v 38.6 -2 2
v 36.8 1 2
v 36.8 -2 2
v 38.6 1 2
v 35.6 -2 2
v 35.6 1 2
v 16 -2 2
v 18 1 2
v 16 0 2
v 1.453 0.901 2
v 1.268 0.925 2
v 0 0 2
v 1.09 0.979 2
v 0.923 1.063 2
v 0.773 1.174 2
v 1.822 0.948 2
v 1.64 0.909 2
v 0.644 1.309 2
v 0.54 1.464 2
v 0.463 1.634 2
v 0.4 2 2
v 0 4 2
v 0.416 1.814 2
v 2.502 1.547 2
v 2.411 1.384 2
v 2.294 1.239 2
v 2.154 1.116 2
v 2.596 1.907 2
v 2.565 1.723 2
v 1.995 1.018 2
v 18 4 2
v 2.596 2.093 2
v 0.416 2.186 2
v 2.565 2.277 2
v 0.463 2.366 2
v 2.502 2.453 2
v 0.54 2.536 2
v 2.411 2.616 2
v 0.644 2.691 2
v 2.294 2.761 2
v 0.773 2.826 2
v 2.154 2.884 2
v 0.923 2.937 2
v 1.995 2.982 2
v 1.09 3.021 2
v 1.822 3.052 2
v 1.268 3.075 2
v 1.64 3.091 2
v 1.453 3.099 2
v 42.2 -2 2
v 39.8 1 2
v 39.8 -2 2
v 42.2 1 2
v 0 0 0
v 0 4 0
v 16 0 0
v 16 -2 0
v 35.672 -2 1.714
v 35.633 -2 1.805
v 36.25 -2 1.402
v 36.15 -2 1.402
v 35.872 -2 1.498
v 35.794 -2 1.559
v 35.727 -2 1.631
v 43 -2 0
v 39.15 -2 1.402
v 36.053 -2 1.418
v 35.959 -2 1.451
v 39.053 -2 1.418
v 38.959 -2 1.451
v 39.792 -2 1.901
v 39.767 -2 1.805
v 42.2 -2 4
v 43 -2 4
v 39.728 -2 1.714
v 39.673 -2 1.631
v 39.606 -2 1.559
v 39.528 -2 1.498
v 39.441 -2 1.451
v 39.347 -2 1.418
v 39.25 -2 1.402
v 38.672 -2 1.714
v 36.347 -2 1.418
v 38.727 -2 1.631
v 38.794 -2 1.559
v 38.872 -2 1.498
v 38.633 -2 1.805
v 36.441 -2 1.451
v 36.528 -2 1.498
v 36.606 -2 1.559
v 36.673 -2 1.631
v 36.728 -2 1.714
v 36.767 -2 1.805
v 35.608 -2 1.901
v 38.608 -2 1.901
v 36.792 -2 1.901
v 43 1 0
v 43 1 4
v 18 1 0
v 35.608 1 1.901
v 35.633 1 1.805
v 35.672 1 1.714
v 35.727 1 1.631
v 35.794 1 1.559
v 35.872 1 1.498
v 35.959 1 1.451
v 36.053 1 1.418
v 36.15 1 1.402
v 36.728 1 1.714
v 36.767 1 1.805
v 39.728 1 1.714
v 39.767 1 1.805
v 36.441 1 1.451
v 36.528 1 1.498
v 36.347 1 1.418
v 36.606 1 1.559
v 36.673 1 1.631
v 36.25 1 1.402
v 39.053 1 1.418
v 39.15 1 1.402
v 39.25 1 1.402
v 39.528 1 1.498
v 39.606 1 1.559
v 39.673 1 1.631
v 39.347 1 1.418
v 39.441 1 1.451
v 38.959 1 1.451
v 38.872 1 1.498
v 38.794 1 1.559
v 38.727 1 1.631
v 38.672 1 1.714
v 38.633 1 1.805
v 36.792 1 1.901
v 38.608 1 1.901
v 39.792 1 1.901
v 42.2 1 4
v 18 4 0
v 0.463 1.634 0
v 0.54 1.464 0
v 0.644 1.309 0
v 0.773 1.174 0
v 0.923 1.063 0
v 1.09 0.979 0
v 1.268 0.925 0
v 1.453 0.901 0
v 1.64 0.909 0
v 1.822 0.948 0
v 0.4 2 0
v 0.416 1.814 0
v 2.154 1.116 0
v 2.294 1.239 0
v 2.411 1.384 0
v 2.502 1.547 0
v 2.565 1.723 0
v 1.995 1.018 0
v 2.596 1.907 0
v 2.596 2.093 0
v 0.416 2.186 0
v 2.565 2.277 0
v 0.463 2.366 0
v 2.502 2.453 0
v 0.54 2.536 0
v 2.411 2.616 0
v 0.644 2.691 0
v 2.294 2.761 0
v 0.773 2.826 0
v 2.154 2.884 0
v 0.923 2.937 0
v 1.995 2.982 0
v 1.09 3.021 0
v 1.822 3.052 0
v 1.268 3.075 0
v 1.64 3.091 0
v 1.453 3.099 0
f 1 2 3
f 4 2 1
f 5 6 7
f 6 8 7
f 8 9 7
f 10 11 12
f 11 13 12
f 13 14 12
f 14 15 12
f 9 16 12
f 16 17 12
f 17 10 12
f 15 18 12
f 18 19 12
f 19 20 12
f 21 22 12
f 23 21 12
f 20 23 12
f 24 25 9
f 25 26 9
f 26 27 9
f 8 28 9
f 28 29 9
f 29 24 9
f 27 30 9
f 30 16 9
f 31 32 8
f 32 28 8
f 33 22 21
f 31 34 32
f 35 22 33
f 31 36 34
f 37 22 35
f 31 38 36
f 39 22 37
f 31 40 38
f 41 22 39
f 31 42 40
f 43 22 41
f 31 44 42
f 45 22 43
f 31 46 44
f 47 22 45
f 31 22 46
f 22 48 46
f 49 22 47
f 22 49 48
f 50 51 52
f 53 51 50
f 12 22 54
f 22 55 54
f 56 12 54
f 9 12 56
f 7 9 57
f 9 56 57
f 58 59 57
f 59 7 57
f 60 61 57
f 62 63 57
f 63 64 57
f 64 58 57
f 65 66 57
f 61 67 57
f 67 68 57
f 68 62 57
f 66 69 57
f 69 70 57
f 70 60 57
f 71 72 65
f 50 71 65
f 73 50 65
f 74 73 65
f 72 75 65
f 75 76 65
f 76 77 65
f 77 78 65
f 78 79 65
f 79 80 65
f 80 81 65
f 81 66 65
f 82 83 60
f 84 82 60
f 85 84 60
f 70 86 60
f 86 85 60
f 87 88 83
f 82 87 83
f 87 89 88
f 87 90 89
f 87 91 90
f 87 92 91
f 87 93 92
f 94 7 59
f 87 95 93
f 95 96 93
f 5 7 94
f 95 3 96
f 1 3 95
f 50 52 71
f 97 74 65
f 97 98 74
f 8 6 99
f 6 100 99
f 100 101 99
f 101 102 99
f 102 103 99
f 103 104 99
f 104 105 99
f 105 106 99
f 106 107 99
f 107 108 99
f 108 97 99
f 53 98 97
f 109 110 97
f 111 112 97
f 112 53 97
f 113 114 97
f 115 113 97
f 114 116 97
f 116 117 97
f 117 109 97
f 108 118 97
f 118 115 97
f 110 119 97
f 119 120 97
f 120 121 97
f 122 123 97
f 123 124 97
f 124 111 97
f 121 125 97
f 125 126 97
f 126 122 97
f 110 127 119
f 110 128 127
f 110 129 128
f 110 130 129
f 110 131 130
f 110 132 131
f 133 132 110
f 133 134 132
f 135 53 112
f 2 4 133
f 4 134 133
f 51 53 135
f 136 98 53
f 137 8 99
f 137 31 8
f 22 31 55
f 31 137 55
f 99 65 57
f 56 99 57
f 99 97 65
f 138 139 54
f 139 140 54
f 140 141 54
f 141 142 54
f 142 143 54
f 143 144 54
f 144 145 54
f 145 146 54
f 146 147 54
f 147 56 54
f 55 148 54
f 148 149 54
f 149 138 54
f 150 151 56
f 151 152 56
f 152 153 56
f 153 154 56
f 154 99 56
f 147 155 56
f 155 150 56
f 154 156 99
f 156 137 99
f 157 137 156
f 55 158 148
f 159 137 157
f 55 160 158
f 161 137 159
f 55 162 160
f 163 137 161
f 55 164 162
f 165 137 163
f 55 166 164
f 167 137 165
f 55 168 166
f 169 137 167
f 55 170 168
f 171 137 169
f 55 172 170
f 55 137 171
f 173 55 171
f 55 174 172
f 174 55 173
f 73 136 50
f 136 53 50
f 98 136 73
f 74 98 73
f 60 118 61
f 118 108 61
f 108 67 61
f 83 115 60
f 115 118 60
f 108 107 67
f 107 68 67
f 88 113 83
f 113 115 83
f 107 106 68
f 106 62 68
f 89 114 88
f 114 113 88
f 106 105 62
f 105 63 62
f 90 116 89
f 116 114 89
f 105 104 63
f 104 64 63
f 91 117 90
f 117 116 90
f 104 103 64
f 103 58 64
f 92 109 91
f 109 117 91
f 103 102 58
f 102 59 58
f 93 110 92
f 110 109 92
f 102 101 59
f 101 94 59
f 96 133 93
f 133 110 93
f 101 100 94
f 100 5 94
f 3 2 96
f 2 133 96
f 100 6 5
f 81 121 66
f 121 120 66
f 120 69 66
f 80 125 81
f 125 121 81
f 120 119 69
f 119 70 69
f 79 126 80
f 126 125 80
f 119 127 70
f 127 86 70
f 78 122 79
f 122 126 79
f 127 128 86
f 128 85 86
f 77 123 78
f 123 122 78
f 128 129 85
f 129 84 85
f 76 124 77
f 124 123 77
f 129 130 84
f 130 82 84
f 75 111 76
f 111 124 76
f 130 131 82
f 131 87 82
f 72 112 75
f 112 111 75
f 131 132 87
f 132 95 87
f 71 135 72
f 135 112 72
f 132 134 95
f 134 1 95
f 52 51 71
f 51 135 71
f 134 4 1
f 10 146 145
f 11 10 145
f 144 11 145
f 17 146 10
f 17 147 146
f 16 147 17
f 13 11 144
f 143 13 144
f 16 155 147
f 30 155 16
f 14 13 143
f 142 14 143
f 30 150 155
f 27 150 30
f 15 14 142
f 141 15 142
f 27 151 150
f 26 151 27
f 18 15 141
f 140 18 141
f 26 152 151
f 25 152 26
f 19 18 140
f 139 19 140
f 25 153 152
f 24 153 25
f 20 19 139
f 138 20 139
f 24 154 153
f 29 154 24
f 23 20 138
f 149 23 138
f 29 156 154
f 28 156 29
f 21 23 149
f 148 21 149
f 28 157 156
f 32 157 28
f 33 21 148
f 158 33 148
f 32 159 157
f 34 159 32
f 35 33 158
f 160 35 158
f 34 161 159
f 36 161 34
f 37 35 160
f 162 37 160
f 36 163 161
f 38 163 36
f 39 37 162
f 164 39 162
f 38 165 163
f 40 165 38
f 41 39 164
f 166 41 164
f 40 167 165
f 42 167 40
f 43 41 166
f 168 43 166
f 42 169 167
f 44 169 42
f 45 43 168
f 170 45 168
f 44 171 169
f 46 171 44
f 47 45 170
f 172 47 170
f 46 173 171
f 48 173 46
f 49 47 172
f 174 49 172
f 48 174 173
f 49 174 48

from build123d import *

# Parameters (mm, degrees)
SALIENTE_EXTRUIR1_DEPTH = 2
CROQUIS3_W              = 0.8
CROQUIS3_H              = 3
SALIENTE_EXTRUIR2_DEPTH = 2
CROQUIS4_R              = 0.6
CORTAR_EXTRUIR1_DEPTH   = 44.289721644
CROQUIS5_R              = 1.1
CORTAR_EXTRUIR2_DEPTH   = 44.370496884


with BuildPart() as part:
    # Croquis1 → Saliente-Extruir1 (new body)
    with BuildSketch(Plane.XY):
        Polygon((0, 0), (16, 0), (16, -2), (19, -2), (43, -2), (43, 1), (18, 1), (18, 4), (15, 4), (0, 4), align=None)
    extrude(amount=SALIENTE_EXTRUIR1_DEPTH)

    # Croquis3 → Saliente-Extruir2 (add)
    with BuildSketch(Plane.XY.offset(2)):
        with Locations((42.6, -0.5)):
            Rectangle(CROQUIS3_W, CROQUIS3_H)
    extrude(amount=SALIENTE_EXTRUIR2_DEPTH)

    # Croquis4 → Cortar-Extruir1 (cut, through all)
    with BuildSketch(Plane(origin=(0, 1, 0), x_dir=(1, 0, 0), z_dir=(0, 1, 0))):
        with Locations((39.2, -2)):
            Circle(CROQUIS4_R)
        with Locations((36.2, -2)):
            Circle(CROQUIS4_R)
    extrude(amount=-CORTAR_EXTRUIR1_DEPTH, mode=Mode.SUBTRACT)

    # Croquis5 → Cortar-Extruir2 (cut, through all)
    with BuildSketch(Plane(origin=(0, 0, 0), x_dir=(-1, 0, 0), z_dir=(0, 0, -1))):
        with Locations((-1.5, 2)):
            Circle(CROQUIS5_R)
    extrude(amount=-CORTAR_EXTRUIR2_DEPTH, mode=Mode.SUBTRACT)


solid = part.part
